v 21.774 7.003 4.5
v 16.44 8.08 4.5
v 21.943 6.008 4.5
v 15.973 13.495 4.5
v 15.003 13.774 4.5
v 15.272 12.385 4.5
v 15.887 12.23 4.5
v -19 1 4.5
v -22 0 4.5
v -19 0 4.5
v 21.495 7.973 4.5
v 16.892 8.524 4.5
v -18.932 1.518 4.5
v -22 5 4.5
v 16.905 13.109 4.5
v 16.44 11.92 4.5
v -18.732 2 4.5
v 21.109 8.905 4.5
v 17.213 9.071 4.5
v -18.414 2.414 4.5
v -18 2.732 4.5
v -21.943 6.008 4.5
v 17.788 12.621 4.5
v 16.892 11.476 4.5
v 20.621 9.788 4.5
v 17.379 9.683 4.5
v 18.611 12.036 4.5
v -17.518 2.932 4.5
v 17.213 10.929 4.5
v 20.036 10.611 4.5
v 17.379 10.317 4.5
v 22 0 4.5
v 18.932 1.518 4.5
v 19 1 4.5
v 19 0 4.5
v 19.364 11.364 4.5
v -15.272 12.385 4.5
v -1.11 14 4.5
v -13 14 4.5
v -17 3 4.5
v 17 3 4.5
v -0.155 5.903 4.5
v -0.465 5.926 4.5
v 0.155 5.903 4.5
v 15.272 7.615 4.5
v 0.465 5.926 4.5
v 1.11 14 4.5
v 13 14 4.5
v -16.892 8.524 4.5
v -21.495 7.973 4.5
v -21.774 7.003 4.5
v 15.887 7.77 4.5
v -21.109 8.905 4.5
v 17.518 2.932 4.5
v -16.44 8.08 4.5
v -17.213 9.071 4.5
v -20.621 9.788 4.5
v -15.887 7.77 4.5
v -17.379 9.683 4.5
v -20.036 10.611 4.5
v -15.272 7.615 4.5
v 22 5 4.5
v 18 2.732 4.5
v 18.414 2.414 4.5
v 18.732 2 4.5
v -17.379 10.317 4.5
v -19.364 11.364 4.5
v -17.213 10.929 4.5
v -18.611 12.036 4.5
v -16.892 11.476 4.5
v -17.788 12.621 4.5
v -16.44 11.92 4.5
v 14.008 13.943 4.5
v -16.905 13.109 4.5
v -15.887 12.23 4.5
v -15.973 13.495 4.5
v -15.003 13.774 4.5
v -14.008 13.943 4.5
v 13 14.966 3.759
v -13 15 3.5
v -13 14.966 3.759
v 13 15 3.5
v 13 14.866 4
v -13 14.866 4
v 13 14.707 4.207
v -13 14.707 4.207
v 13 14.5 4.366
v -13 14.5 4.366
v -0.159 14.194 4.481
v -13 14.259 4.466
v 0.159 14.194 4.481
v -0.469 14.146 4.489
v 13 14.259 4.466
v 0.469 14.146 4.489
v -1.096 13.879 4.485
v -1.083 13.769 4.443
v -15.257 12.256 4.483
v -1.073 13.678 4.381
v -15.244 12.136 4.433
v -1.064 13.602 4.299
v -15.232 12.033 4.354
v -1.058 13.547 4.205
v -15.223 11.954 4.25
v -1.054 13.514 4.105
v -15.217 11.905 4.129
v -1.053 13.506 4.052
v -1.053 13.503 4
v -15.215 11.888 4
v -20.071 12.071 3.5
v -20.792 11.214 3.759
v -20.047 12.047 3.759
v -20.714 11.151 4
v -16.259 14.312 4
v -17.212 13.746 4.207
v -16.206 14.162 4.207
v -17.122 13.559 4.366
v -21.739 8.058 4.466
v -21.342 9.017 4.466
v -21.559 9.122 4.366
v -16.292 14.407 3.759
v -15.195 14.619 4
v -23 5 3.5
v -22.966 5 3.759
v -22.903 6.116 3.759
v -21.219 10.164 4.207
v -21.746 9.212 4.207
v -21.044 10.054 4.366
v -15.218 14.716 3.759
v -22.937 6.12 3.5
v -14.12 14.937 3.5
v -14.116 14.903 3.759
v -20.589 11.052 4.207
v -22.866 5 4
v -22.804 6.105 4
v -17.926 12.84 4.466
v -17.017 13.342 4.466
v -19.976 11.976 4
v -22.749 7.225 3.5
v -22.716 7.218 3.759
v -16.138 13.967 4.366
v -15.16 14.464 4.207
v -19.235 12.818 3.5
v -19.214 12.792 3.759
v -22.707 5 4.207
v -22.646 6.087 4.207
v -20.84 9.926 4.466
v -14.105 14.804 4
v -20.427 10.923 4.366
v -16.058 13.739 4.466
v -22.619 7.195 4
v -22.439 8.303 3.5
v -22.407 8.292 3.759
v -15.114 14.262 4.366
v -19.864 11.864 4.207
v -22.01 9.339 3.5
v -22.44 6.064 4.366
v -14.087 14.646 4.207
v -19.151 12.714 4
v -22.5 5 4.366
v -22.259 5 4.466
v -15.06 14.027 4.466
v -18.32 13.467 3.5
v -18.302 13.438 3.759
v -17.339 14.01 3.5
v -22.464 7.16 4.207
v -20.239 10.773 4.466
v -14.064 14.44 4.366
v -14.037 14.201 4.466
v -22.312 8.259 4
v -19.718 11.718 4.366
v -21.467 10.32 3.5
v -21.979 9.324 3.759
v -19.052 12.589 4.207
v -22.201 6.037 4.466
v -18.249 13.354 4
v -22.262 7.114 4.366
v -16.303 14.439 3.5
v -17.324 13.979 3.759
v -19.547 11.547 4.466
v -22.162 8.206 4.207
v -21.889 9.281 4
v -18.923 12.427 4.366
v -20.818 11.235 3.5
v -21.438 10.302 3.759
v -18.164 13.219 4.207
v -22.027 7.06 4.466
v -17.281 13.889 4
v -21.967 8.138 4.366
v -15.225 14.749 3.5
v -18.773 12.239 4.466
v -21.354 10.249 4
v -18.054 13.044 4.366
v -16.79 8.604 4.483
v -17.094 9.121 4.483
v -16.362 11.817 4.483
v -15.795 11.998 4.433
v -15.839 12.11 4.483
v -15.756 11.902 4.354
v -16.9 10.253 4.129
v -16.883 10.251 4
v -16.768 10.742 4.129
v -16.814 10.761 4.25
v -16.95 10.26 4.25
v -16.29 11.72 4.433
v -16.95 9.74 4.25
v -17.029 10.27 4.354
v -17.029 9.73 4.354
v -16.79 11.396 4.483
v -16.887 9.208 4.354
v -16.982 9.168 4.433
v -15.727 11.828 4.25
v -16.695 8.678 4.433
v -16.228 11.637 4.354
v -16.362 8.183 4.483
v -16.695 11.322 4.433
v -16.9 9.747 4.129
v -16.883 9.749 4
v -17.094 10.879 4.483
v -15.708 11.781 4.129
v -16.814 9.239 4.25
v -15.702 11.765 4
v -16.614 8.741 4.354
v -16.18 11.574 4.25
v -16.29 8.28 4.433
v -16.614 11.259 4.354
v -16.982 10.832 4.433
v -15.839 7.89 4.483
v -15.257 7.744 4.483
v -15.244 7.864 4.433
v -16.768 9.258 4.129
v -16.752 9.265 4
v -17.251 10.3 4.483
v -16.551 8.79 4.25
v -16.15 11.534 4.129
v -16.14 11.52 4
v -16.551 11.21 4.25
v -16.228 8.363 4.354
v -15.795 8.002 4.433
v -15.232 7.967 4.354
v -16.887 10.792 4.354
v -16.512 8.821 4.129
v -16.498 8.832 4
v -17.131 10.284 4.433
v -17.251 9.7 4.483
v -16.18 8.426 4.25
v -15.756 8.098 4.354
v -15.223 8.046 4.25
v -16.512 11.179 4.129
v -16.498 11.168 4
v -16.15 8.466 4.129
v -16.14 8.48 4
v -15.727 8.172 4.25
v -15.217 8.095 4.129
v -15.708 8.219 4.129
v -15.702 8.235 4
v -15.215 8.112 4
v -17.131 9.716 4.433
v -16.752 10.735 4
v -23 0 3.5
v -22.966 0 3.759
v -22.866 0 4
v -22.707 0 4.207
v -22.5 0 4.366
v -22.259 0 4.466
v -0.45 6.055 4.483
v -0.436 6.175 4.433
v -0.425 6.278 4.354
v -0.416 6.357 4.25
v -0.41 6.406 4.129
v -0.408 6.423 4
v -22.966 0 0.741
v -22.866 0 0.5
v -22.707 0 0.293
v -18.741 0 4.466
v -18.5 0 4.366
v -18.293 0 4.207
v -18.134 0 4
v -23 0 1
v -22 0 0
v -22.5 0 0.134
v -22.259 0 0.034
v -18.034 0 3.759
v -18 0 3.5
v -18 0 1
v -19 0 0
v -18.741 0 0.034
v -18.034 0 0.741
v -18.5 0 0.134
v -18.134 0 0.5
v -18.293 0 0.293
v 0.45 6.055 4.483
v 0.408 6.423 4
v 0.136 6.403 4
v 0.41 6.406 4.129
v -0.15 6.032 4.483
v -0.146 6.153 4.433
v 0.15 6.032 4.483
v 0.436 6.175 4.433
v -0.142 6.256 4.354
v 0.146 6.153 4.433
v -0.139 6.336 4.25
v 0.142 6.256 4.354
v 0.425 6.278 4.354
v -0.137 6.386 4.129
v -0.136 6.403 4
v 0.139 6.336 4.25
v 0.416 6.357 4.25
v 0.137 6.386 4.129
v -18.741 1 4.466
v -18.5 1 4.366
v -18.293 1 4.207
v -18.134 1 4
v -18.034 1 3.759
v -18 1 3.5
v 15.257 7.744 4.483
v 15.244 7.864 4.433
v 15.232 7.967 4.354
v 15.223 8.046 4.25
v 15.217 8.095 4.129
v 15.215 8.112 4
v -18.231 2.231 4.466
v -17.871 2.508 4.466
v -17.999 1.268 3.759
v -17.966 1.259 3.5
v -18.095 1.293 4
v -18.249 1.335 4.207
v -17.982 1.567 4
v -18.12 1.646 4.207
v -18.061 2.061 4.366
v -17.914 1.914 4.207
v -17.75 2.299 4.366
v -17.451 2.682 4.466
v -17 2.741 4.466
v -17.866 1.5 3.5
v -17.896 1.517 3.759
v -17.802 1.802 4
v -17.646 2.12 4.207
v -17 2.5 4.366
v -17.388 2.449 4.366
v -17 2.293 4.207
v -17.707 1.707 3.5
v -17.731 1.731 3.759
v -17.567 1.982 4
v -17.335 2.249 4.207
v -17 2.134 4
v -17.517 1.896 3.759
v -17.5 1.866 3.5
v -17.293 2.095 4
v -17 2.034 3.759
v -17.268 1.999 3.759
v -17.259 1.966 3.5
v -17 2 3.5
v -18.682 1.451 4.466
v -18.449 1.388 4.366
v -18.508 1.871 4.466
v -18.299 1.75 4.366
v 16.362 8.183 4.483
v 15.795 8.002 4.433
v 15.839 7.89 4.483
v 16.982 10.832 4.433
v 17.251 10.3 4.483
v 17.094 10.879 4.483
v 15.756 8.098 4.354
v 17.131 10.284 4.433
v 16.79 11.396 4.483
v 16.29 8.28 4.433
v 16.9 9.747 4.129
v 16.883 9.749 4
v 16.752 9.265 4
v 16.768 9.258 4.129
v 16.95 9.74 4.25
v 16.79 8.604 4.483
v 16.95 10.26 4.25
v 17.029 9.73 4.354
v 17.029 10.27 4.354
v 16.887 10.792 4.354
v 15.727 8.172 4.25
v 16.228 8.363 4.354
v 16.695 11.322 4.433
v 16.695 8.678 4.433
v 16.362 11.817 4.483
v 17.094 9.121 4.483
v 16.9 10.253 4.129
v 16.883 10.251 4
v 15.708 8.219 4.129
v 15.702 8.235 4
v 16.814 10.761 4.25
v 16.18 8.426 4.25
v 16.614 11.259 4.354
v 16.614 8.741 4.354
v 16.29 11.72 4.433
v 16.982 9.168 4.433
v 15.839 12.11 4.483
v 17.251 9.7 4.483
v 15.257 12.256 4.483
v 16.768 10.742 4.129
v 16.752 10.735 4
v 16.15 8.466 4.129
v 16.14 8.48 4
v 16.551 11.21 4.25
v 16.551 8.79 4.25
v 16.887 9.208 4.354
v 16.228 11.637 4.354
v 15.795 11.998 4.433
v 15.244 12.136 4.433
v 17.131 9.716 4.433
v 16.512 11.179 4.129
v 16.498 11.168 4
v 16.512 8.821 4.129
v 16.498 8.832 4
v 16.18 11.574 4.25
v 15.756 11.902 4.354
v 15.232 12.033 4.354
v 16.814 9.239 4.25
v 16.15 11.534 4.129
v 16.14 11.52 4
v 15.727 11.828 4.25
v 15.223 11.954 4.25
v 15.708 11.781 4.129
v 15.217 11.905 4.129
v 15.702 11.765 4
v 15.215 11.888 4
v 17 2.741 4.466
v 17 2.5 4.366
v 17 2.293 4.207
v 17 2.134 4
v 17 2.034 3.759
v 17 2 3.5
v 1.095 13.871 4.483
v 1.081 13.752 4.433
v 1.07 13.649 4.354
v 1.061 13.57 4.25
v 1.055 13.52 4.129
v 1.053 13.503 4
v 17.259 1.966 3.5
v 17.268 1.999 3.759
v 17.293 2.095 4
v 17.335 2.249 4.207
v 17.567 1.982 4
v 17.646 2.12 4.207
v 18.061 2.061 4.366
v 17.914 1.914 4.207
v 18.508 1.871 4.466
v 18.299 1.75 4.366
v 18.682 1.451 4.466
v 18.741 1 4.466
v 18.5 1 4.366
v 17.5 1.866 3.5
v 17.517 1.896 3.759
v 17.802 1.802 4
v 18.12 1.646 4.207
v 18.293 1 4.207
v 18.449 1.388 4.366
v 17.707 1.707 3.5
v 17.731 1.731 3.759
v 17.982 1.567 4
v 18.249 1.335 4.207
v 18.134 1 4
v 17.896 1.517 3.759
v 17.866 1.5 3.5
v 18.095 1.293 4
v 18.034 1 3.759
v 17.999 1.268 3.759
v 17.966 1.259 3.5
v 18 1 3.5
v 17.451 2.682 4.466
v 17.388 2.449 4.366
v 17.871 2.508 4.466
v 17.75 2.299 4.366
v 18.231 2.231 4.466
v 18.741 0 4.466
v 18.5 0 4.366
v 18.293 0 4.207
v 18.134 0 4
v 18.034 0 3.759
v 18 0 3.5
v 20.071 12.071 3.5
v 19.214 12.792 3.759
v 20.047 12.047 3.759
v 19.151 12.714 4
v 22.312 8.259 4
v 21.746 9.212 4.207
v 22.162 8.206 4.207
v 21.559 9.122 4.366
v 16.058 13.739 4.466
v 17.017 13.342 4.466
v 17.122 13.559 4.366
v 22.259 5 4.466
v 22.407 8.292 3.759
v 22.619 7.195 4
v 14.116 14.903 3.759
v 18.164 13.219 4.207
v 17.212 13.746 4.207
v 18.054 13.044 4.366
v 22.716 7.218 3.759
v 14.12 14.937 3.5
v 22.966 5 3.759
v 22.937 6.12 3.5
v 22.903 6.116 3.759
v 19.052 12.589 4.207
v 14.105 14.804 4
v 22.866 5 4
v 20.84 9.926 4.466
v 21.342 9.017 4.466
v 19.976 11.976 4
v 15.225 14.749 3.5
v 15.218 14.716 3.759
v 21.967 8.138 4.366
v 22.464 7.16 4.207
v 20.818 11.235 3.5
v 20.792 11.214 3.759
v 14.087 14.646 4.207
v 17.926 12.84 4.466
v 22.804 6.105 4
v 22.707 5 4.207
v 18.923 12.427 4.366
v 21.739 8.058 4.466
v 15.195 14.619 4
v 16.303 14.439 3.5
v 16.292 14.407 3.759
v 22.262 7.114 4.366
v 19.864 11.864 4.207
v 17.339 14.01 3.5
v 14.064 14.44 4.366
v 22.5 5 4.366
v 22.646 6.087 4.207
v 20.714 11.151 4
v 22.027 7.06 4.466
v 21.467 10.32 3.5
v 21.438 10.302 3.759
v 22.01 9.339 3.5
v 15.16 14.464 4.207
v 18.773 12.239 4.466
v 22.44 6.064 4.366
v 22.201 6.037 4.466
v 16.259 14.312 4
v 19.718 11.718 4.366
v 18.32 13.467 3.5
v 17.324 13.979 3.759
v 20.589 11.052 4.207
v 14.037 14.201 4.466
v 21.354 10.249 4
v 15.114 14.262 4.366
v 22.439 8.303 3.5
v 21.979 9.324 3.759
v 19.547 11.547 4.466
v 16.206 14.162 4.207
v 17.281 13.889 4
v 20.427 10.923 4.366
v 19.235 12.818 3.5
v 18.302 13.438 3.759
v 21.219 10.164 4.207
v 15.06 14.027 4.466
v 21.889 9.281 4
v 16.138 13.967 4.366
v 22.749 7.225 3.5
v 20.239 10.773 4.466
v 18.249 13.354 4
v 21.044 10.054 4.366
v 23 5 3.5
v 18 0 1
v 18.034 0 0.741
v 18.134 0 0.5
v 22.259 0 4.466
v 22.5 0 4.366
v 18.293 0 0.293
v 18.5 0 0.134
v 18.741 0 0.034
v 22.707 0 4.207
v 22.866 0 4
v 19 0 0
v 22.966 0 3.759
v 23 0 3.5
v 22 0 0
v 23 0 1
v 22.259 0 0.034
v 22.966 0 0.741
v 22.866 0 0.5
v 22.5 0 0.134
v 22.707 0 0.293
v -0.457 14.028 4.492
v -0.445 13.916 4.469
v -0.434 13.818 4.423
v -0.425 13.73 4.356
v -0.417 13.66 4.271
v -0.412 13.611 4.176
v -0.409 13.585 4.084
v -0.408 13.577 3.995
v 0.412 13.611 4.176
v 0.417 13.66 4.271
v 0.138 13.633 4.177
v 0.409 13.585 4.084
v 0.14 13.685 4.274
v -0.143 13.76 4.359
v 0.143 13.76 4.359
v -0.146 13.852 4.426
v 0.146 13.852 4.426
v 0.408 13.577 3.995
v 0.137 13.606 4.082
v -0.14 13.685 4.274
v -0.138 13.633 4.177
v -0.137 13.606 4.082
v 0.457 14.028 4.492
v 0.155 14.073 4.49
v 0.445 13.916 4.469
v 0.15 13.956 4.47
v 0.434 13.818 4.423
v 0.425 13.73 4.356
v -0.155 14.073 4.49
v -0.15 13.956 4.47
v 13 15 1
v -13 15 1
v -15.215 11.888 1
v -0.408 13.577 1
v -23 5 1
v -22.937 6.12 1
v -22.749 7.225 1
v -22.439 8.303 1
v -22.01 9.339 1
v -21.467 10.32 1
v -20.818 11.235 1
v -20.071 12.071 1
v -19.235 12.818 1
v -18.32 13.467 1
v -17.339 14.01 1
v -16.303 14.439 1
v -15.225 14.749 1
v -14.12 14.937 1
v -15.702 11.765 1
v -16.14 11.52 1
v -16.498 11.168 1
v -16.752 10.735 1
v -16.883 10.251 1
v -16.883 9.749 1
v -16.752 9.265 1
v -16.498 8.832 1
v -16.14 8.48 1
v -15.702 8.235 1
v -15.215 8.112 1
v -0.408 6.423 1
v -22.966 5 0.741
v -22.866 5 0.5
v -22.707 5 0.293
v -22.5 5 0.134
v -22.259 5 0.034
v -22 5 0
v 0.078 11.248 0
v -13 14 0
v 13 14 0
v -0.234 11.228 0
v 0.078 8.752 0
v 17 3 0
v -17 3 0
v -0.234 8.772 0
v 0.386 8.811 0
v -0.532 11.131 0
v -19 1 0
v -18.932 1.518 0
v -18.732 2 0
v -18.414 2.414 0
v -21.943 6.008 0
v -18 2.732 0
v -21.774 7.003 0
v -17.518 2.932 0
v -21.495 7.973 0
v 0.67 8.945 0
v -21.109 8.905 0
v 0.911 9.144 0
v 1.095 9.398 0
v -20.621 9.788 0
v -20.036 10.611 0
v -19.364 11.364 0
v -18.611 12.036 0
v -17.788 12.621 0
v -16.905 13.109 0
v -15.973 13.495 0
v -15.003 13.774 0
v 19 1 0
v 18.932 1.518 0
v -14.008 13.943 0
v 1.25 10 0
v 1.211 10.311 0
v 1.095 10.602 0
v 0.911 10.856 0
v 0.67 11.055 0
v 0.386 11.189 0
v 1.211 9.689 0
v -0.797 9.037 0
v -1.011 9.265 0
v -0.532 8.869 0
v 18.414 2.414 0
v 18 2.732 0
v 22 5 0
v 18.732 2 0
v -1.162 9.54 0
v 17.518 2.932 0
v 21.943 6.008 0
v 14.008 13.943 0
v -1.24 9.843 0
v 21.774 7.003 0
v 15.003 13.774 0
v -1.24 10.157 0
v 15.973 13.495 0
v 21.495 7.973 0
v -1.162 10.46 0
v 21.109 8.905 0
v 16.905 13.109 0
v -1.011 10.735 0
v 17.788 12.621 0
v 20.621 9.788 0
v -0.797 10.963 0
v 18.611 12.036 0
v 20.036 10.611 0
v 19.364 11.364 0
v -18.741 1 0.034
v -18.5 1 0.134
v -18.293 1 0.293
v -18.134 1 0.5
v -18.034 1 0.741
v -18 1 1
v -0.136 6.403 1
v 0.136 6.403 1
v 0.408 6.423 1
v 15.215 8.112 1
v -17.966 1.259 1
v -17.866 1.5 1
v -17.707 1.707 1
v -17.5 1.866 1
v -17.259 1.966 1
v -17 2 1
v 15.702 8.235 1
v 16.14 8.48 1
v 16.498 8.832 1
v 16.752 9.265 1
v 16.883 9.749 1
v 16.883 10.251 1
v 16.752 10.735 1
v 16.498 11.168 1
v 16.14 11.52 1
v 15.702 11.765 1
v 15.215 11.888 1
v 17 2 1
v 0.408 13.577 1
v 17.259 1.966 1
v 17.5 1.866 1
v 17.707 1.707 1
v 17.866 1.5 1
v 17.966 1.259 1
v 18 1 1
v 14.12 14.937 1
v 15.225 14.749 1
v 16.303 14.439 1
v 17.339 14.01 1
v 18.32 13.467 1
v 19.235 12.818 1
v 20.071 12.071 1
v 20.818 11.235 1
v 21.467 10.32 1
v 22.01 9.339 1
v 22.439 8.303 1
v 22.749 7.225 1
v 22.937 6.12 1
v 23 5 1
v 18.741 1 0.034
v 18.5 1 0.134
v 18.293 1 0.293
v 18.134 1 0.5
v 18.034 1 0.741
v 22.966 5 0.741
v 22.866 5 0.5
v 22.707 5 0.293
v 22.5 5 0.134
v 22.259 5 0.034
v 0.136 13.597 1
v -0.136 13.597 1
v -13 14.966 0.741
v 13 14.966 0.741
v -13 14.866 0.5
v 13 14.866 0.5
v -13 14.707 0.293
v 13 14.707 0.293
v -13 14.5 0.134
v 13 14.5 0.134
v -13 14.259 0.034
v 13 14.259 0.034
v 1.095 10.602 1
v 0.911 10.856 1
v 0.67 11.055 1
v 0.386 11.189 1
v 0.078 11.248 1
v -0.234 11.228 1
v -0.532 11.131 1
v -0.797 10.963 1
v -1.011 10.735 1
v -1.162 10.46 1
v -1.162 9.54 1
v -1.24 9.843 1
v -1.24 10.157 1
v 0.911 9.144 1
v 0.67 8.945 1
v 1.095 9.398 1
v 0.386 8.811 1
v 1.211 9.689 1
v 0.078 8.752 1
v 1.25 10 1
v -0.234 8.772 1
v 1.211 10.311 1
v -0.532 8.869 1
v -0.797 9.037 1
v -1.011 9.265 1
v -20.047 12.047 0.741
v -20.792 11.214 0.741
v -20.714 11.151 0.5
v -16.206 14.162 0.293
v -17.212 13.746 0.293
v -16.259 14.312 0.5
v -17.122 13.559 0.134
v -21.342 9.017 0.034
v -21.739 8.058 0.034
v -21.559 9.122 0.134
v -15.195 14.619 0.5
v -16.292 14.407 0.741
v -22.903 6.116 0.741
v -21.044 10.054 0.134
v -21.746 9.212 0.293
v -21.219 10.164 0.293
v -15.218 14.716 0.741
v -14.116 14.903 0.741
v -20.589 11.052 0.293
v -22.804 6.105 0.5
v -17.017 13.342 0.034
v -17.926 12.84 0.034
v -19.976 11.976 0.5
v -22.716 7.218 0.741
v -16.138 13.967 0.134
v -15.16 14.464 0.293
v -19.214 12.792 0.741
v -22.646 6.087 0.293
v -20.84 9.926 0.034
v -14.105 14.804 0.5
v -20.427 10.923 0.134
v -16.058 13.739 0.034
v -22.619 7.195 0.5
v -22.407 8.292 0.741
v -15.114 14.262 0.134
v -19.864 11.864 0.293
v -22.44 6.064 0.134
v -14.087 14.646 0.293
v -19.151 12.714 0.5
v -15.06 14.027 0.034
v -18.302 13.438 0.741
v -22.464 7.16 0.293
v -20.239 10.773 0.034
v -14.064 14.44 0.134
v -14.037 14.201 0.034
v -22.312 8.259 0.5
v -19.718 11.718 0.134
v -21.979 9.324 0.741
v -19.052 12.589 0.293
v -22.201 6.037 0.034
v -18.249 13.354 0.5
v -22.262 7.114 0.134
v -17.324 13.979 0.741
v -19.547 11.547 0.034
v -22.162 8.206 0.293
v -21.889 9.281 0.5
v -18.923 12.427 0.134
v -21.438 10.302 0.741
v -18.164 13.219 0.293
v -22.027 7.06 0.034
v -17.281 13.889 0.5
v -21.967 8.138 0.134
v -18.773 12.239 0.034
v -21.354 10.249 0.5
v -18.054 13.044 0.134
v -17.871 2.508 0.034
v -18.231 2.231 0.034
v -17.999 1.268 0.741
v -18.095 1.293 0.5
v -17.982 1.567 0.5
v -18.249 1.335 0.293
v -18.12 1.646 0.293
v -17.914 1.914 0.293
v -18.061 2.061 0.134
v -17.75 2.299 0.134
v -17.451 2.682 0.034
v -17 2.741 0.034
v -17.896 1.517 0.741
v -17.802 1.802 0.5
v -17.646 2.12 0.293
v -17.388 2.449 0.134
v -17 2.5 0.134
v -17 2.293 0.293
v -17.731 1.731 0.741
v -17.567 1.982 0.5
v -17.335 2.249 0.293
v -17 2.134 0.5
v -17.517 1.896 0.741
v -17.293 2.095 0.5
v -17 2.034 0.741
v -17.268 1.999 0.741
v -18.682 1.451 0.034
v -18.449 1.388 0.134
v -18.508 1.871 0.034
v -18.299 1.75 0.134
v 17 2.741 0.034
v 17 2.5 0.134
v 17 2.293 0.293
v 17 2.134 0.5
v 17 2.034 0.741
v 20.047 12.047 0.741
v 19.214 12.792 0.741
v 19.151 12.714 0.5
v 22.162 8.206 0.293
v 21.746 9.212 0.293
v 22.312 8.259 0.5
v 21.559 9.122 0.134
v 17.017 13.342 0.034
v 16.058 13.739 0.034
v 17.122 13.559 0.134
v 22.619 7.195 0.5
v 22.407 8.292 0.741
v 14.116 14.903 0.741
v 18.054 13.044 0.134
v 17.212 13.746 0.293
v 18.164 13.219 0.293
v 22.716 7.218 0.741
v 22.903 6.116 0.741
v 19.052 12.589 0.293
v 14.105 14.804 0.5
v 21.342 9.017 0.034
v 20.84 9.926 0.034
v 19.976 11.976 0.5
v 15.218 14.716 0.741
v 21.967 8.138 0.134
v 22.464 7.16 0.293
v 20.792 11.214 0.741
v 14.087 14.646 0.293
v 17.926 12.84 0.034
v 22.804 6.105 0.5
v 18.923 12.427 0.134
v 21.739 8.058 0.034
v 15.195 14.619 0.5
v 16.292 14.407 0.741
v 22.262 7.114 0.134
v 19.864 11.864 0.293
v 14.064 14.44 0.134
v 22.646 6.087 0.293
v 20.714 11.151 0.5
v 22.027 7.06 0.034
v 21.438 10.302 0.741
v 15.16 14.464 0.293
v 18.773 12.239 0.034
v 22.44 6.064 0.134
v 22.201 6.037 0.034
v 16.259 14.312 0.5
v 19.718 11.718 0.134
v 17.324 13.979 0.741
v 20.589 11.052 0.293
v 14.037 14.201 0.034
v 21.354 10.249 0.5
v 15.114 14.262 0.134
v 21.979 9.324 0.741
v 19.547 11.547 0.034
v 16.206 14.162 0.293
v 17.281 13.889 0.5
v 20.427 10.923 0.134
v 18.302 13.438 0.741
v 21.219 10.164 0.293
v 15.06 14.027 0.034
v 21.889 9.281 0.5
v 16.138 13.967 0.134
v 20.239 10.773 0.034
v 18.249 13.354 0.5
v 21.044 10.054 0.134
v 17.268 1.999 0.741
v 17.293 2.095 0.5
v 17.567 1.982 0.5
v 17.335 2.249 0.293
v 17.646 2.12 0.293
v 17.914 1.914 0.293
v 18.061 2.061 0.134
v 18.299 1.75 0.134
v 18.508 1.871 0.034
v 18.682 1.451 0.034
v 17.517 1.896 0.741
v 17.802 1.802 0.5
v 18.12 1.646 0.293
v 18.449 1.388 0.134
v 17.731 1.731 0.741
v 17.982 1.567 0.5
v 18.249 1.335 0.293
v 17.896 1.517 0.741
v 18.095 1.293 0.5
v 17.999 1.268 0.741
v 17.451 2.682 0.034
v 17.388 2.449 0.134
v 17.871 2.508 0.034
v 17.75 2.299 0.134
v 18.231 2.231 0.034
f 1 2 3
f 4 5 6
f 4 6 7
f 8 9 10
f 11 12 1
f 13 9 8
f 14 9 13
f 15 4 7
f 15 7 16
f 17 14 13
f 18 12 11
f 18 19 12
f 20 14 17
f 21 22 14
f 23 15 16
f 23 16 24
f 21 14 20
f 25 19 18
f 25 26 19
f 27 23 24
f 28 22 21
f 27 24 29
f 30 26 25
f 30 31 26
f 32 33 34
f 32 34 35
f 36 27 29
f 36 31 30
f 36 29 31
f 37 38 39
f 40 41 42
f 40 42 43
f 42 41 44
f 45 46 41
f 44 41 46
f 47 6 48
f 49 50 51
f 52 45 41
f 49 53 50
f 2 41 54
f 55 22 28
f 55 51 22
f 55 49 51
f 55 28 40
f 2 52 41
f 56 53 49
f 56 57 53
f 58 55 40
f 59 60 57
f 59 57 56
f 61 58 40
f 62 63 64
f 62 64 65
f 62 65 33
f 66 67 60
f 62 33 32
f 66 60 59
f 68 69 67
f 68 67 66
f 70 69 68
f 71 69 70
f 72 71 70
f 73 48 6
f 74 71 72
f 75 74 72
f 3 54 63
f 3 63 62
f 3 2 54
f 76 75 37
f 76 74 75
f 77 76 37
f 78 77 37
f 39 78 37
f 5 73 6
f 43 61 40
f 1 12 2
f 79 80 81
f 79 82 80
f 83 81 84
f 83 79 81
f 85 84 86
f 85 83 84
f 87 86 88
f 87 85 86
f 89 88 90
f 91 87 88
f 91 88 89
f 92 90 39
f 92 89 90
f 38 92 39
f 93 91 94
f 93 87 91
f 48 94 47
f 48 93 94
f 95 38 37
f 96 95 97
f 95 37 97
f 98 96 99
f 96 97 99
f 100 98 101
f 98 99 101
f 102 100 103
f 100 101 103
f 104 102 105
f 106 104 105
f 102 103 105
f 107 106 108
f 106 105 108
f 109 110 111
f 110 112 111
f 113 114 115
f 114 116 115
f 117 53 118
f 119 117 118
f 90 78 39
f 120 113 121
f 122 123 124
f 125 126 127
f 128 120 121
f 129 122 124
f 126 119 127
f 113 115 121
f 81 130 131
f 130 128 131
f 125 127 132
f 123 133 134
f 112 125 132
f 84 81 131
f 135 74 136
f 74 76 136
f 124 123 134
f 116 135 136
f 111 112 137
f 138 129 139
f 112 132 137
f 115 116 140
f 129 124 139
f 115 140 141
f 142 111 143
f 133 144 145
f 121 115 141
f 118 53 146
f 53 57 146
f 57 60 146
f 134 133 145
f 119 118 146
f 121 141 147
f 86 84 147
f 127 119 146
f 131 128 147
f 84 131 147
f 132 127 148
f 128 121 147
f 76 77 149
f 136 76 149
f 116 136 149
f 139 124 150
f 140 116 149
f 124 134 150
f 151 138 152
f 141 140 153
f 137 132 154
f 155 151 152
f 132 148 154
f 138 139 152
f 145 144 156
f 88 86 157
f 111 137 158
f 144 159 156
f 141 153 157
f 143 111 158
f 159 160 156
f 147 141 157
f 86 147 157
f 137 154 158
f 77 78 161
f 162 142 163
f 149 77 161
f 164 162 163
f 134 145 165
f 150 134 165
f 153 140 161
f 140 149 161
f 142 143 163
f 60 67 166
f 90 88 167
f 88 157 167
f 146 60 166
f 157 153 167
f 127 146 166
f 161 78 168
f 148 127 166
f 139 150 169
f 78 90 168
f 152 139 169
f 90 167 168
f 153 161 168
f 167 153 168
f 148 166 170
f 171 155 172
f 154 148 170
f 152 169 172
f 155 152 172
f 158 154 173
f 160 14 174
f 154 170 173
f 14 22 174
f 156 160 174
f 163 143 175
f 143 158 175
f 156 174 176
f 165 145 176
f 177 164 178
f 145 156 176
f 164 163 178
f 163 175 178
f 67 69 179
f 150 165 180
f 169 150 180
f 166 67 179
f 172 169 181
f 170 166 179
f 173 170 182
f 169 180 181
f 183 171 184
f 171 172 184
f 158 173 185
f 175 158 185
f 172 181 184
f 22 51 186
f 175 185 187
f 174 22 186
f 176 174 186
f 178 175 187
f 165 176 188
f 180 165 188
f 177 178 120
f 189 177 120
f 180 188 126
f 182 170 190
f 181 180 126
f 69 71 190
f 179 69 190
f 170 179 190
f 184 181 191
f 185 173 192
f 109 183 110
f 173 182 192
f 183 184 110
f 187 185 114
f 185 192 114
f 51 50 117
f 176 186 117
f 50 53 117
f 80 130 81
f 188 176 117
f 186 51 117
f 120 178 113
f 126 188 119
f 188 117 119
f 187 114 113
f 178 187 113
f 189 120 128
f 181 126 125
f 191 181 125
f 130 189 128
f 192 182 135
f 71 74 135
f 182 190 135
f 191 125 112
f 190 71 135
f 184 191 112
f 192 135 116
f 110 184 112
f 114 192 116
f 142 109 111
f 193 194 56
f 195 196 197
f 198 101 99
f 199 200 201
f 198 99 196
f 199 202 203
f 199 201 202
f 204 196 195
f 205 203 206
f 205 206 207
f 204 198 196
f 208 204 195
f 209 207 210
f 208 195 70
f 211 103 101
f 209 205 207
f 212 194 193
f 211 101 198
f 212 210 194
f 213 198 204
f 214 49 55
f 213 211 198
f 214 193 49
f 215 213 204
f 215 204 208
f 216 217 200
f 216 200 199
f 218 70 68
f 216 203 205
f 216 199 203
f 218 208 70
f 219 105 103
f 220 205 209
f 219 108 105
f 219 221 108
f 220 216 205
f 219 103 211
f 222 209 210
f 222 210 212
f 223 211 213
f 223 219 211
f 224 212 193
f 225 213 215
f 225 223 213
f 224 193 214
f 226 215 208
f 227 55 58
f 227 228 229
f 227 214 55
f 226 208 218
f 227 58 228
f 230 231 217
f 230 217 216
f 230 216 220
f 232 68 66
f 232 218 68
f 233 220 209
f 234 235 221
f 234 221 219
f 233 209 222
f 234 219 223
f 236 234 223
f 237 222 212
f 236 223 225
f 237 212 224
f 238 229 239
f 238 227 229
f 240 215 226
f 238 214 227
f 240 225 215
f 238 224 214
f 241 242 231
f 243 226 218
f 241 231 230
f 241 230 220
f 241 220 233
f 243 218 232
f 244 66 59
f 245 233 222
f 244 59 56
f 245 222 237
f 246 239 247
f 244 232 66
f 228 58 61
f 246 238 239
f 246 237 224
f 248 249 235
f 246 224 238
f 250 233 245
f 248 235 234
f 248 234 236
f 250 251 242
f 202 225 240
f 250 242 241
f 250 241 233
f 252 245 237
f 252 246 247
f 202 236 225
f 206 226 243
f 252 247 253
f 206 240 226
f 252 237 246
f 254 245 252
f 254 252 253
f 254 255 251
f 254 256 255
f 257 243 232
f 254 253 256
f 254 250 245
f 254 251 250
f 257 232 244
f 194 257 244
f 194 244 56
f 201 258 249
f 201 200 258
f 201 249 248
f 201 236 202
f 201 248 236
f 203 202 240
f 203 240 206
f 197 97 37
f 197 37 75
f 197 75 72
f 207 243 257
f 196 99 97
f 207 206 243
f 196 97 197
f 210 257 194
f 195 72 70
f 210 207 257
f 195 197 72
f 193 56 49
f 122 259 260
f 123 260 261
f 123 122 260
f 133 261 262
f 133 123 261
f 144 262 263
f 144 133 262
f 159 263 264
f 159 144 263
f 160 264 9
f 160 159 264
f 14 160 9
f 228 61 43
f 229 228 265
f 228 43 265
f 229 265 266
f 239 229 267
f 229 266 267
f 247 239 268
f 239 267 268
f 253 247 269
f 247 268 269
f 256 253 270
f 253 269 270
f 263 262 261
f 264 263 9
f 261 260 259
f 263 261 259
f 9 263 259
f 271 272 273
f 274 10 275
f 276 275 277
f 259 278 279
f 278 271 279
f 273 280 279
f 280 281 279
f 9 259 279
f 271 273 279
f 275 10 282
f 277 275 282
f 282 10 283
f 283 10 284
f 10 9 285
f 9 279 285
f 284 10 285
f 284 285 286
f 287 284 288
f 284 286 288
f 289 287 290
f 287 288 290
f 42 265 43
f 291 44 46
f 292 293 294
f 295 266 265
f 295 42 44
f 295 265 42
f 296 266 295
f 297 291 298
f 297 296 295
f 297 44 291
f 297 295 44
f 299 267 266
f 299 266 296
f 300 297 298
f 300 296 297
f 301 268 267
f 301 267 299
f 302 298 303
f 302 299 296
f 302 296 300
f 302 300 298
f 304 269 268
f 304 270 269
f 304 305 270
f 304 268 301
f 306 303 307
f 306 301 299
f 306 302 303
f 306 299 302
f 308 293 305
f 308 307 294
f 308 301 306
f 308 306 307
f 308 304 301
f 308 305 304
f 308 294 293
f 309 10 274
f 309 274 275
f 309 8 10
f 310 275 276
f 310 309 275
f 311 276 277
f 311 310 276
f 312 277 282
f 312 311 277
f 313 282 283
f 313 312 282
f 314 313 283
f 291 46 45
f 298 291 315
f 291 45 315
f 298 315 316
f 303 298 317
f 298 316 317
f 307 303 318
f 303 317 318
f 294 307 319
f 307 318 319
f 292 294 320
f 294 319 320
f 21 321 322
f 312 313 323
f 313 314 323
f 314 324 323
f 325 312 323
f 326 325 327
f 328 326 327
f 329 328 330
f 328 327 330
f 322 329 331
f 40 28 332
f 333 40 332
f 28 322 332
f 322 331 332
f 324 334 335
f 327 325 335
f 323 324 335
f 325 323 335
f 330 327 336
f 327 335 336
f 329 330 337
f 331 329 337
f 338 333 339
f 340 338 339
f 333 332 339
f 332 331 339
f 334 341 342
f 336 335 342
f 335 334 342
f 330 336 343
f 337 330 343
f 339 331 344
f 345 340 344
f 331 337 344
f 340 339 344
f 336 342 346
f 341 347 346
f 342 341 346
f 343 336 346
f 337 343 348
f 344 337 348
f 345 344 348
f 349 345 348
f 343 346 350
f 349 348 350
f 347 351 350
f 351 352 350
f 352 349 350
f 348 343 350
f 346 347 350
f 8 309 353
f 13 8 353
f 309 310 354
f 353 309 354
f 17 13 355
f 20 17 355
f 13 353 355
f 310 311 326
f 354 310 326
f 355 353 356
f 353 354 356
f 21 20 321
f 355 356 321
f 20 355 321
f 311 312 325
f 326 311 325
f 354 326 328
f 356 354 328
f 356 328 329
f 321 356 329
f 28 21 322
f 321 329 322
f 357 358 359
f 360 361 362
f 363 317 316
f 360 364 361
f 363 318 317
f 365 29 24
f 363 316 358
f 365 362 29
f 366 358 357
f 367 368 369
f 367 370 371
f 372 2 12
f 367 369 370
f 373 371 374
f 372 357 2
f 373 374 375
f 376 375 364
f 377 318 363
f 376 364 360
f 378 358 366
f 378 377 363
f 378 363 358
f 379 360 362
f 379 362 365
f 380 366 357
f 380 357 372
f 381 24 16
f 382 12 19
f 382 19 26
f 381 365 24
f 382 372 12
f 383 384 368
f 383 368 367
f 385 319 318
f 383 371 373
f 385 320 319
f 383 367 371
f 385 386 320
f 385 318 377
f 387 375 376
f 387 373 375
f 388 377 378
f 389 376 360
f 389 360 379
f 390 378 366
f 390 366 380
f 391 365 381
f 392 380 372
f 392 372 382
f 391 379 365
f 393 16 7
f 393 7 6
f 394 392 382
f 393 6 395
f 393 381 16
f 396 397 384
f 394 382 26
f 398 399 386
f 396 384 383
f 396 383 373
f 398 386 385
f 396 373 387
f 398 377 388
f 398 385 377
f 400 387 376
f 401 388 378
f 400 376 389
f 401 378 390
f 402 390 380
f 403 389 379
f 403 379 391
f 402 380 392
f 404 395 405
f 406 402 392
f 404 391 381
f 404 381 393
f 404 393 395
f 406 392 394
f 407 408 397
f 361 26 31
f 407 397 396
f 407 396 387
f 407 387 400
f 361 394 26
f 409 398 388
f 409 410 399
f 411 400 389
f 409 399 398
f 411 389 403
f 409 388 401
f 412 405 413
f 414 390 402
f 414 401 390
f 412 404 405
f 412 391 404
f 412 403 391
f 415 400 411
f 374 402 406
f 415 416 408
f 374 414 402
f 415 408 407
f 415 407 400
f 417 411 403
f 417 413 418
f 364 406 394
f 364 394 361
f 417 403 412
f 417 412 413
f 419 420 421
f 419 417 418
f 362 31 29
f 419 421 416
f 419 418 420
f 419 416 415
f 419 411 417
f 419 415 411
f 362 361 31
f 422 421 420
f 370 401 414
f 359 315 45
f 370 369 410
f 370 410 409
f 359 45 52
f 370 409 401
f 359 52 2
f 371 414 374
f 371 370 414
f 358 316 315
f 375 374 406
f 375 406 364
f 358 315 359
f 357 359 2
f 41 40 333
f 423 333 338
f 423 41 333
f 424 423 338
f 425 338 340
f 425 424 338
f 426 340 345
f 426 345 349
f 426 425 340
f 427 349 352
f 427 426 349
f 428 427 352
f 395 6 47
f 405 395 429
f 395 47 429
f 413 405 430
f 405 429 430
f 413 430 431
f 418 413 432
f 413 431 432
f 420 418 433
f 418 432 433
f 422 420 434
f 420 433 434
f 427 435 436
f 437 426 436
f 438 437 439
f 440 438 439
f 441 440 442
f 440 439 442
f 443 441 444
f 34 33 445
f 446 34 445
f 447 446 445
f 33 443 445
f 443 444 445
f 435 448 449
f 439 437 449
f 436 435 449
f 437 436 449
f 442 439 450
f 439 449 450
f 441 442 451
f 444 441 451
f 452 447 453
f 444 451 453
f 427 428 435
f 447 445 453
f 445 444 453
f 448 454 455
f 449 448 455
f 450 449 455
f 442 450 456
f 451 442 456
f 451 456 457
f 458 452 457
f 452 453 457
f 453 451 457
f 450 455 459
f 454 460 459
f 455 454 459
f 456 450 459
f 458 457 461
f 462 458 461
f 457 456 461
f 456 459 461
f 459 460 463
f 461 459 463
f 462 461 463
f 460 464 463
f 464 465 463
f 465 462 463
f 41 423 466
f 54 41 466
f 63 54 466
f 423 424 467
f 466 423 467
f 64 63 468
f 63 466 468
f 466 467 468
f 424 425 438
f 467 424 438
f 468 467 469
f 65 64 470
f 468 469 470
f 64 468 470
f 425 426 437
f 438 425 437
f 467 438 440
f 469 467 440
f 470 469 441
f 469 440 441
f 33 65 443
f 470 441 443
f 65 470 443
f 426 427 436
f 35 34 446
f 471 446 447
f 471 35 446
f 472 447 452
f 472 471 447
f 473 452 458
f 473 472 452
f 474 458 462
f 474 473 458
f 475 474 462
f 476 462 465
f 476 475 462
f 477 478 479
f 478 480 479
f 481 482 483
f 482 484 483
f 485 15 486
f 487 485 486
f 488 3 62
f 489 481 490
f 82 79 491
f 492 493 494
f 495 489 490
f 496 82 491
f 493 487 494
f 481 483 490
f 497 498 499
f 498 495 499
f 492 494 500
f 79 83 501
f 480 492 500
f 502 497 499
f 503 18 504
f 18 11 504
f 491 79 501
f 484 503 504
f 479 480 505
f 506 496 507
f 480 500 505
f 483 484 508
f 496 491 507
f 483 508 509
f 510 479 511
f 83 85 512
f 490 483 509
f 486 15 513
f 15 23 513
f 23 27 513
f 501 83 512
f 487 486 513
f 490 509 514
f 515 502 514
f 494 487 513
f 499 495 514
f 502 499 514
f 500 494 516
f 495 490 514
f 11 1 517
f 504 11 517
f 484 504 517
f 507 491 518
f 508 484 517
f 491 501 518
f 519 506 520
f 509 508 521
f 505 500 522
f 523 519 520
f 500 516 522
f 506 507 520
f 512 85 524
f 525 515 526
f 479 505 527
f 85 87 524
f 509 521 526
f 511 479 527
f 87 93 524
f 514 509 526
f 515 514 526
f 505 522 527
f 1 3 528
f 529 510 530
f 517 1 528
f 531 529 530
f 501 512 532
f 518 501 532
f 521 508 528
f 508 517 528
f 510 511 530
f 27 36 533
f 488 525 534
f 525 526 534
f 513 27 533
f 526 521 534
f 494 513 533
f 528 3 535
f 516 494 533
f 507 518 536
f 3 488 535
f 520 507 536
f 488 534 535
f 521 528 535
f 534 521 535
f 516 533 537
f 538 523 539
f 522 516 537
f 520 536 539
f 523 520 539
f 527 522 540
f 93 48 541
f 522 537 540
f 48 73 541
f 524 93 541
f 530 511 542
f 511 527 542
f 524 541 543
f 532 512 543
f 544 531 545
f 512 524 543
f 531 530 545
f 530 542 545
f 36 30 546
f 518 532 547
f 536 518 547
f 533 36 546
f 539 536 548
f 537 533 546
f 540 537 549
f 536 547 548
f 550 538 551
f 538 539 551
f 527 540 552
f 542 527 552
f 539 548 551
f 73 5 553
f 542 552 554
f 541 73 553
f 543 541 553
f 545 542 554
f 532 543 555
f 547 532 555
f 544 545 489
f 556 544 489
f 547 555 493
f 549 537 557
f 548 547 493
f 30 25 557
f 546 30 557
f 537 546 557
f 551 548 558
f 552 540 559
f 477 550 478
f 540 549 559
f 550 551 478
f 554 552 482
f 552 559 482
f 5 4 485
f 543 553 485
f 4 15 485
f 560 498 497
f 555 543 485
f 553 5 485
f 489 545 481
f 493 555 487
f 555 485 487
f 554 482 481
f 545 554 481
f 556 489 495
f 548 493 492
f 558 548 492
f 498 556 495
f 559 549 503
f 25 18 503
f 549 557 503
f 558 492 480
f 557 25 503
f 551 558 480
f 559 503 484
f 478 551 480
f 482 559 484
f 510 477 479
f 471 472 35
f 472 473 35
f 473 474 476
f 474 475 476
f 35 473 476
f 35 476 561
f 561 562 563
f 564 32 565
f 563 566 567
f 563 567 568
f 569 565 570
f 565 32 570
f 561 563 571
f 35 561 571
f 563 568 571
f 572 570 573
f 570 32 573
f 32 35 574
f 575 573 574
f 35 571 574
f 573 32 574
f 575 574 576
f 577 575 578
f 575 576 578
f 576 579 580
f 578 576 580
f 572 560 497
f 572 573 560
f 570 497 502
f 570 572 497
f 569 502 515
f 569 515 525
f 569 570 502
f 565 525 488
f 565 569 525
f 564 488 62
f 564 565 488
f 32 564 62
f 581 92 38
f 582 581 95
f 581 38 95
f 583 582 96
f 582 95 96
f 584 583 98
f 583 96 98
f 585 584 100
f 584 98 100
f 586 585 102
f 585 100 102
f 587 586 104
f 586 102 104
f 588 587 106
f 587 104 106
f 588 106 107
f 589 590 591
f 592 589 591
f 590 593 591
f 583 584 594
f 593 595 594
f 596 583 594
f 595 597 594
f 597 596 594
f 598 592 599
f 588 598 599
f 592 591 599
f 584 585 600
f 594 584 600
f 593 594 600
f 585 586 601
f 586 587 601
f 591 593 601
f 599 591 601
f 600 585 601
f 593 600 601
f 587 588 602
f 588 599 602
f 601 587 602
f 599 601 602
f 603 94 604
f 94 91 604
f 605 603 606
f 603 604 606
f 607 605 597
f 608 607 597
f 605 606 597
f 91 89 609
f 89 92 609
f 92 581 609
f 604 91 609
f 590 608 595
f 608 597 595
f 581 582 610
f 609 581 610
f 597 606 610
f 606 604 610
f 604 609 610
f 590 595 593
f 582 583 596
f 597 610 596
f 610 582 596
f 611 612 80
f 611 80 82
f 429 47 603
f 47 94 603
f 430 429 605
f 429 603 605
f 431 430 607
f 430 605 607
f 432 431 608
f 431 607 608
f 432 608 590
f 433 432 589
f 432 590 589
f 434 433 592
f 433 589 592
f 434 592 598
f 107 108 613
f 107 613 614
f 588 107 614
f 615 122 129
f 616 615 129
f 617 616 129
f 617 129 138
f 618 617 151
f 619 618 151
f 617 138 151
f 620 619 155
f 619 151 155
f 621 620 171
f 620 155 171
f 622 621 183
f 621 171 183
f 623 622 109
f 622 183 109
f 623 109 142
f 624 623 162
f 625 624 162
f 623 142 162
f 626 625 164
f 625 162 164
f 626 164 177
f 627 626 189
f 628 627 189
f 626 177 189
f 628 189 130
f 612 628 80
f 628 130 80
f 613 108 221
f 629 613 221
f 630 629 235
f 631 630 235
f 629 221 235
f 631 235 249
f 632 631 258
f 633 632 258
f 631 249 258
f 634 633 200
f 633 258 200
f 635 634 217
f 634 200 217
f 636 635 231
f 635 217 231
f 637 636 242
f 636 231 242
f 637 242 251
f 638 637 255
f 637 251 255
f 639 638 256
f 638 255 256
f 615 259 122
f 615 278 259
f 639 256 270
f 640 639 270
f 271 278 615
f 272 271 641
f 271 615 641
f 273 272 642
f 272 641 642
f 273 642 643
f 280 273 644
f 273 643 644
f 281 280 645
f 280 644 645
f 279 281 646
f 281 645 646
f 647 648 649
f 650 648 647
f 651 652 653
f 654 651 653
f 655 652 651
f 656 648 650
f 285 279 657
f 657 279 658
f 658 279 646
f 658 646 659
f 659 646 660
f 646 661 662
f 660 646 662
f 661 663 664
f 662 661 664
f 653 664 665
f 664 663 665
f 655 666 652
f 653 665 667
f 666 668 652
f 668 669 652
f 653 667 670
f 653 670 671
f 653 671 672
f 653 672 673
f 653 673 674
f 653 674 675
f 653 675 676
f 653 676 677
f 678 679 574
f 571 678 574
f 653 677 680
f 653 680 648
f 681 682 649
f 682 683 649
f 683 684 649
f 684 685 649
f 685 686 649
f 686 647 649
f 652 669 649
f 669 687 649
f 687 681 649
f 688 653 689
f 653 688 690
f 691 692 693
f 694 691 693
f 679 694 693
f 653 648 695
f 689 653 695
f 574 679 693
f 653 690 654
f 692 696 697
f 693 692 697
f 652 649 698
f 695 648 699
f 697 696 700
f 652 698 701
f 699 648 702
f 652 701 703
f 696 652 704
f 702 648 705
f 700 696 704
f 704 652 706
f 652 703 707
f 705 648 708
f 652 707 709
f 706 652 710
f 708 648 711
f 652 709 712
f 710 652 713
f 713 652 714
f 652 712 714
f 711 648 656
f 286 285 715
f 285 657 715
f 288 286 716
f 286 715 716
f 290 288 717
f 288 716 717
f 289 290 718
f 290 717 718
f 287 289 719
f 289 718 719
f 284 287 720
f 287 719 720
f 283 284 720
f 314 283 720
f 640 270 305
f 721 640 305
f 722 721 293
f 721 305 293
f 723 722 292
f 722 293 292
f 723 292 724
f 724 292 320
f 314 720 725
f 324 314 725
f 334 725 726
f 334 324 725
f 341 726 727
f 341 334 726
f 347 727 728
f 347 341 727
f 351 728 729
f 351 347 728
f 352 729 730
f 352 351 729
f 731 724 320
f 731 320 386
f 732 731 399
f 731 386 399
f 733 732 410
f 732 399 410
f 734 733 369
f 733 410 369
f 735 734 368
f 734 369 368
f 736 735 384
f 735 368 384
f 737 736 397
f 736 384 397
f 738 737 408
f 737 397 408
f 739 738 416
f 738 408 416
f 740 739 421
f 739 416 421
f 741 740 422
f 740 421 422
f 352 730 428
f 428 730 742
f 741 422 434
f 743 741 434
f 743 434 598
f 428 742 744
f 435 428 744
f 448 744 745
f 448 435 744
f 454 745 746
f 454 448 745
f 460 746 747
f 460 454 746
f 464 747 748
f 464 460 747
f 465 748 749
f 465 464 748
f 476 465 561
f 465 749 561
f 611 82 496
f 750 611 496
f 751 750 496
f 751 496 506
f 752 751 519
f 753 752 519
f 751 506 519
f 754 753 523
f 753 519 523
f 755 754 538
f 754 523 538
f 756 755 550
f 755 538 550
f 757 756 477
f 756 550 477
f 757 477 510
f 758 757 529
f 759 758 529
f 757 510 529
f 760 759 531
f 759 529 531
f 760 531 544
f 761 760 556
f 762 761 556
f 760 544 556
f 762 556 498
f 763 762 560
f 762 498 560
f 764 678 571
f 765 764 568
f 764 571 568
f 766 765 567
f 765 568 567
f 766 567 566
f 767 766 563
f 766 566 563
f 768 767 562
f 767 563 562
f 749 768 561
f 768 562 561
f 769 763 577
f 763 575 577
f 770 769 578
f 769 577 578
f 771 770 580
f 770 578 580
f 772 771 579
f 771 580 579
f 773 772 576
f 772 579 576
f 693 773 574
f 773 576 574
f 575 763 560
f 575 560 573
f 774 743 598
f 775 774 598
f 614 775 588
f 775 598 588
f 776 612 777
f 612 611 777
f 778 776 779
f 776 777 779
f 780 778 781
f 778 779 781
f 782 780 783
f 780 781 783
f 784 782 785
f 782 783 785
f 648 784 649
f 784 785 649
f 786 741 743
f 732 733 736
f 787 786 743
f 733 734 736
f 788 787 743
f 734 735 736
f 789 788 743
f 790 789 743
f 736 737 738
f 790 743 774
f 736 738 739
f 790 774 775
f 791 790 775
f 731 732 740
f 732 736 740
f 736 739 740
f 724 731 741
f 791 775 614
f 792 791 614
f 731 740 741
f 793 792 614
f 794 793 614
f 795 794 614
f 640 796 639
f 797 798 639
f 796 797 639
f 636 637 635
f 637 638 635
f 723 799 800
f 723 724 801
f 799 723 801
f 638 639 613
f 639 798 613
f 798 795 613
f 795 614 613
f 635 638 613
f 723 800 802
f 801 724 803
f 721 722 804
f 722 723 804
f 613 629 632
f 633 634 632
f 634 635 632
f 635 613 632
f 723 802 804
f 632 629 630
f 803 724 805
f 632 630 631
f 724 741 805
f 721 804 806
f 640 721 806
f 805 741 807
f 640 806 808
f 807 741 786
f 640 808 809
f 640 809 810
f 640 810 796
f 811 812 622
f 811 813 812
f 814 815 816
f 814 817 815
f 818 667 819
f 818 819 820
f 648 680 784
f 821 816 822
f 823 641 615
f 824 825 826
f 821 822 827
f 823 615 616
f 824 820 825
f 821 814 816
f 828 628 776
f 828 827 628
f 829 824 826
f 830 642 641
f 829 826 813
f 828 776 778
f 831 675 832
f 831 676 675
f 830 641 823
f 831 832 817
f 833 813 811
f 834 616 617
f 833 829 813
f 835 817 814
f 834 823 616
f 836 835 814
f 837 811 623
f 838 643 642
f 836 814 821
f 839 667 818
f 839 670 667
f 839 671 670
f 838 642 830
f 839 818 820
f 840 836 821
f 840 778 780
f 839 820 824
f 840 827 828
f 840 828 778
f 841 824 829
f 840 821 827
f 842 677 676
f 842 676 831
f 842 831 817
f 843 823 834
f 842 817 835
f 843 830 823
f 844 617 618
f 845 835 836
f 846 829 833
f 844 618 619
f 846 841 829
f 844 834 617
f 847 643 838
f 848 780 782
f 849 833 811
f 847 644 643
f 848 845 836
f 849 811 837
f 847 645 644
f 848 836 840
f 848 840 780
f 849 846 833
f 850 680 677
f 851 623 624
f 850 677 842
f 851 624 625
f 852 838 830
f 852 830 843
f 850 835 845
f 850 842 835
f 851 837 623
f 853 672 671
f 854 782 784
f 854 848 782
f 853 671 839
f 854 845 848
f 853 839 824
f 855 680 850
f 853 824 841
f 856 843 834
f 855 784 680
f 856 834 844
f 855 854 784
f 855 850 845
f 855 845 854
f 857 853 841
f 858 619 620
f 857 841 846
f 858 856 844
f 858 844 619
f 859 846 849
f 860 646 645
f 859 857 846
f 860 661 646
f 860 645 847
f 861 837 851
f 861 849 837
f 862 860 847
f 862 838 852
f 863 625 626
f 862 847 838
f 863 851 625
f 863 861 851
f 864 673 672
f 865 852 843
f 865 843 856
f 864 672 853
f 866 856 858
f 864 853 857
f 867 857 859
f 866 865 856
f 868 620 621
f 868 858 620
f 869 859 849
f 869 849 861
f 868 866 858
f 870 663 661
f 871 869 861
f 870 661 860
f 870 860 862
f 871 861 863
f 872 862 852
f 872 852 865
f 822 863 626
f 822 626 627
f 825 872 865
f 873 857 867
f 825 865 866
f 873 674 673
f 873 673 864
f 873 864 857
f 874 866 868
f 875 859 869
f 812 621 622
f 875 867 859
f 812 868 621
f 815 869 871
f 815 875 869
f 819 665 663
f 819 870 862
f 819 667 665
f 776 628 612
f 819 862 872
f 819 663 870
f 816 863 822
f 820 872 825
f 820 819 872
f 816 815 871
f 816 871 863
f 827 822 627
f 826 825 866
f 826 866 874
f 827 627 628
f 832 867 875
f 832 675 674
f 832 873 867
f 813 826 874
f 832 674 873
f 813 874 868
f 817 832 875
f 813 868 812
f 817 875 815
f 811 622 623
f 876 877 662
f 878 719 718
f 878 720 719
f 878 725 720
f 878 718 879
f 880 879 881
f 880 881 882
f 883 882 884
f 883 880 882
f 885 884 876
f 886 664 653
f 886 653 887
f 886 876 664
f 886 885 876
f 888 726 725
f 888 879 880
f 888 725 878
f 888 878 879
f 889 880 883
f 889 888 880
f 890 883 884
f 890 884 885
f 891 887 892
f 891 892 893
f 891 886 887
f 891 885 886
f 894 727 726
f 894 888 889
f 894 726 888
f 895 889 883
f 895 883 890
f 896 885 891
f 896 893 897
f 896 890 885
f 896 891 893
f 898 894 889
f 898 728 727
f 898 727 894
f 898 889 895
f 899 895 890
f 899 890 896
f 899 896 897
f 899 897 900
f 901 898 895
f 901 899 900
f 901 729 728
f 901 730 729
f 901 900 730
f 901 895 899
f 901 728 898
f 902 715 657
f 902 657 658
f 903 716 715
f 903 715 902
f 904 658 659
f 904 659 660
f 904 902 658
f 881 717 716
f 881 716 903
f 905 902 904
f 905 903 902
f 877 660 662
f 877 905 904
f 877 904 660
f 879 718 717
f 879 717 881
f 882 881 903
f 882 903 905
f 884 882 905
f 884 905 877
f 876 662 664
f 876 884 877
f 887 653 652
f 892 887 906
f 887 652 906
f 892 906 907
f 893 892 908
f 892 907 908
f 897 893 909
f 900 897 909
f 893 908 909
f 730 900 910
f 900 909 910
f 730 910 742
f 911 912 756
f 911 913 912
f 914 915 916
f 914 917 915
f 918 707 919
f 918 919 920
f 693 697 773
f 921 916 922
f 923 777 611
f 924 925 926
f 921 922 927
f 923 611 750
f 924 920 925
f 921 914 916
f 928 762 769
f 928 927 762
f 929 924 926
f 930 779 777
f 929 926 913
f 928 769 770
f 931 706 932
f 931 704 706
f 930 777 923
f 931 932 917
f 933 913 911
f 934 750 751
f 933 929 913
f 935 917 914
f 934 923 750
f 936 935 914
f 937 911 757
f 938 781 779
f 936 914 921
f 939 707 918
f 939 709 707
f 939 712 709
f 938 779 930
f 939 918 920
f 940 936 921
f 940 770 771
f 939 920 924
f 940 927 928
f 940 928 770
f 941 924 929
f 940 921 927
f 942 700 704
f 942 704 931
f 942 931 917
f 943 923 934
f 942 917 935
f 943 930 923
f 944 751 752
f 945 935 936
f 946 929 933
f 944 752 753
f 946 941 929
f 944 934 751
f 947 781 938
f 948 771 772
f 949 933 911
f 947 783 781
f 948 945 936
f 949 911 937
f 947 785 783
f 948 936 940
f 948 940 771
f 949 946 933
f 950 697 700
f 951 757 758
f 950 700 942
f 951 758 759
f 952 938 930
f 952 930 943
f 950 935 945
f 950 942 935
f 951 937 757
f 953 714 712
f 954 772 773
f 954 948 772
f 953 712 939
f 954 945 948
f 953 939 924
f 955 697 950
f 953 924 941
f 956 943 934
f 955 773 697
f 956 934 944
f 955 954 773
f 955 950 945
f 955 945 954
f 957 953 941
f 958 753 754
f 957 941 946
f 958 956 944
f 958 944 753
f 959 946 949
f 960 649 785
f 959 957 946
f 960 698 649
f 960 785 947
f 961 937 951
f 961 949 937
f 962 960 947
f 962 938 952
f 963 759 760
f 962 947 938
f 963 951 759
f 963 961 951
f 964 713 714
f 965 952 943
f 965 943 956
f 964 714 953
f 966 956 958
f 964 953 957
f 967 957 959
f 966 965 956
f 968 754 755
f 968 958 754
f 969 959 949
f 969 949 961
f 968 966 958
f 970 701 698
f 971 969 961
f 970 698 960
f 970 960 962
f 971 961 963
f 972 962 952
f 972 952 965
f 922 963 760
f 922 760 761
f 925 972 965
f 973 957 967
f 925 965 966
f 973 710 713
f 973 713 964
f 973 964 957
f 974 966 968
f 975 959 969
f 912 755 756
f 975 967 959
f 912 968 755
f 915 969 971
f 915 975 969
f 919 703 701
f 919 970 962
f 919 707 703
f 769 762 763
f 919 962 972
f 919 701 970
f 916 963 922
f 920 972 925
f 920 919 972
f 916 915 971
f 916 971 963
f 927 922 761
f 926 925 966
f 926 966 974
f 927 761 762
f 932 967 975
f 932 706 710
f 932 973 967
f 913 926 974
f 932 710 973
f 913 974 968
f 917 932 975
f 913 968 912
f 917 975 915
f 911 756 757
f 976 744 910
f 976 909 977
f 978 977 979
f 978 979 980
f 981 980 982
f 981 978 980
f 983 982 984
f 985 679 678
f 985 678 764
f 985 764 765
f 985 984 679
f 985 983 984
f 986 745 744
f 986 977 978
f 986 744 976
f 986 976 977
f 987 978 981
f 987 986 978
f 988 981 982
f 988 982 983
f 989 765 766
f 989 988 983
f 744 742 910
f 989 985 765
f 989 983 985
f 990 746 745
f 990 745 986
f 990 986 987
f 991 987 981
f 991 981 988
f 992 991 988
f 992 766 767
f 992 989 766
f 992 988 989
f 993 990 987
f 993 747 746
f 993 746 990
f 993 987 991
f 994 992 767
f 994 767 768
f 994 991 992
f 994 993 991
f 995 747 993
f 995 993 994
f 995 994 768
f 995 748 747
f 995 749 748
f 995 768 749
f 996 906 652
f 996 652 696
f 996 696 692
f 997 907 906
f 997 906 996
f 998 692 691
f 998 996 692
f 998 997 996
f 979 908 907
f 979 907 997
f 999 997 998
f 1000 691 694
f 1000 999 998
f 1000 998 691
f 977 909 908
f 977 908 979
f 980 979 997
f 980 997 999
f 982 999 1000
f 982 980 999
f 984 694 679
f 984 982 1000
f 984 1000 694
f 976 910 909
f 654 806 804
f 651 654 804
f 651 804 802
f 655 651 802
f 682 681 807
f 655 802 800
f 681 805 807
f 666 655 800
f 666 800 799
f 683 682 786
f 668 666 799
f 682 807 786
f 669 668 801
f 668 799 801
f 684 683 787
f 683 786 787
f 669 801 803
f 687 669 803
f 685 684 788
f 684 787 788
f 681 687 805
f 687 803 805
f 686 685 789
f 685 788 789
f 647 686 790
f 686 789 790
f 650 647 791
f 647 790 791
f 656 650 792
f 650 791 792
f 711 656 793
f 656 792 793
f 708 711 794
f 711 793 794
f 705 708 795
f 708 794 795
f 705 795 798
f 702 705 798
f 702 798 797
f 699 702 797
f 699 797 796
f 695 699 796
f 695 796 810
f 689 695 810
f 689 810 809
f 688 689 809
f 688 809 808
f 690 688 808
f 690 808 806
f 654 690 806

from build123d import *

# Parameters (mm, degrees)
PAD_DEPTH       = 4.5
SKETCH002_R     = 1.25
POCKET_DEPTH    = 5
POCKET001_DEPTH = 3.5
FILLET_R        = 10
FILLET001_R     = 1
FILLET002_R     = 0.5


with BuildPart() as part:
    # Sketch → Pad (new body)
    with BuildSketch(Plane.XY):
        Polygon((23, 15), (23, 0), (18, 0), (18, 2), (-18, 2), (-18, 0), (-23, 0), (-23, 15), align=None)
    extrude(amount=PAD_DEPTH)

    # Sketch002 (on Face10 of Pad) → Pocket (cut)
    with BuildSketch(Plane.XY.offset(4.5)):
        with Locations((0, 10)):
            Circle(SKETCH002_R)
    extrude(amount=-POCKET_DEPTH, mode=Mode.SUBTRACT)

    # Sketch003 (on Face5 of Pocket) → Pocket001 (cut)
    with BuildSketch(Plane.XY.offset(4.5)):
        with BuildLine():
            Line((-15.215333, 11.887758), (-0.408, 13.576805))
            ThreePointArc((0.408, 13.576805), (0, 13.6), (-0.408, 13.576805))
            Line((15.215333, 11.887758), (0.408, 13.576805))
            ThreePointArc((15.215333, 8.112242), (16.9, 10), (15.215333, 11.887758))
            Line((0.408, 6.423195), (15.215333, 8.112242))
            ThreePointArc((-0.408, 6.423195), (0, 6.4), (0.408, 6.423195))
            Line((-15.215333, 8.112242), (-0.408, 6.423195))
            ThreePointArc((-15.215333, 11.887758), (-16.9, 10), (-15.215333, 8.112242))
        make_face()
    extrude(amount=-POCKET001_DEPTH, mode=Mode.SUBTRACT)

    # Fillet
    fillet_edges = [part.edges().sort_by_distance(p)[0] for p in [
        (-23, 15, 2.25),
        (23, 15, 2.25),
    ]]
    fillet(fillet_edges, radius=FILLET_R)

    # Fillet001
    fillet001_edges = [part.edges().sort_by_distance(p)[0] for p in [
        (-18, 1, 0),
        (-18, 1, 4.5),
        (0, 2, 4.5),
        (0, 2, 0),
        (18, 1, 4.5),
        (18, 1, 0),
        (-18, 2, 2.25),
        (18, 2, 2.25),
        (23, 2.5, 4.5),
        (20.071068, 12.071068, 4.5),
        (-20.071068, 12.071068, 4.5),
        (0, 15, 4.5),
        (-23, 2.5, 4.5),
        (23, 2.5, 0),
        (20.071068, 12.071068, 0),
        (0, 15, 0),
        (-20.071068, 12.071068, 0),
        (-23, 2.5, 0),
    ]]
    fillet(fillet001_edges, radius=FILLET001_R)

    # Fillet002
    fillet002_edges = [part.edges().sort_by_distance(p)[0] for p in [
        (-16.9, 10, 4.5),
        (-7.811667, 7.267718, 4.5),
        (0, 6.4, 4.5),
        (7.811667, 7.267718, 4.5),
        (16.9, 10, 4.5),
        (7.811667, 12.732282, 4.5),
        (0, 13.6, 4.5),
        (-7.811667, 12.732282, 4.5),
    ]]
    fillet(fillet002_edges, radius=FILLET002_R)


solid = part.part
